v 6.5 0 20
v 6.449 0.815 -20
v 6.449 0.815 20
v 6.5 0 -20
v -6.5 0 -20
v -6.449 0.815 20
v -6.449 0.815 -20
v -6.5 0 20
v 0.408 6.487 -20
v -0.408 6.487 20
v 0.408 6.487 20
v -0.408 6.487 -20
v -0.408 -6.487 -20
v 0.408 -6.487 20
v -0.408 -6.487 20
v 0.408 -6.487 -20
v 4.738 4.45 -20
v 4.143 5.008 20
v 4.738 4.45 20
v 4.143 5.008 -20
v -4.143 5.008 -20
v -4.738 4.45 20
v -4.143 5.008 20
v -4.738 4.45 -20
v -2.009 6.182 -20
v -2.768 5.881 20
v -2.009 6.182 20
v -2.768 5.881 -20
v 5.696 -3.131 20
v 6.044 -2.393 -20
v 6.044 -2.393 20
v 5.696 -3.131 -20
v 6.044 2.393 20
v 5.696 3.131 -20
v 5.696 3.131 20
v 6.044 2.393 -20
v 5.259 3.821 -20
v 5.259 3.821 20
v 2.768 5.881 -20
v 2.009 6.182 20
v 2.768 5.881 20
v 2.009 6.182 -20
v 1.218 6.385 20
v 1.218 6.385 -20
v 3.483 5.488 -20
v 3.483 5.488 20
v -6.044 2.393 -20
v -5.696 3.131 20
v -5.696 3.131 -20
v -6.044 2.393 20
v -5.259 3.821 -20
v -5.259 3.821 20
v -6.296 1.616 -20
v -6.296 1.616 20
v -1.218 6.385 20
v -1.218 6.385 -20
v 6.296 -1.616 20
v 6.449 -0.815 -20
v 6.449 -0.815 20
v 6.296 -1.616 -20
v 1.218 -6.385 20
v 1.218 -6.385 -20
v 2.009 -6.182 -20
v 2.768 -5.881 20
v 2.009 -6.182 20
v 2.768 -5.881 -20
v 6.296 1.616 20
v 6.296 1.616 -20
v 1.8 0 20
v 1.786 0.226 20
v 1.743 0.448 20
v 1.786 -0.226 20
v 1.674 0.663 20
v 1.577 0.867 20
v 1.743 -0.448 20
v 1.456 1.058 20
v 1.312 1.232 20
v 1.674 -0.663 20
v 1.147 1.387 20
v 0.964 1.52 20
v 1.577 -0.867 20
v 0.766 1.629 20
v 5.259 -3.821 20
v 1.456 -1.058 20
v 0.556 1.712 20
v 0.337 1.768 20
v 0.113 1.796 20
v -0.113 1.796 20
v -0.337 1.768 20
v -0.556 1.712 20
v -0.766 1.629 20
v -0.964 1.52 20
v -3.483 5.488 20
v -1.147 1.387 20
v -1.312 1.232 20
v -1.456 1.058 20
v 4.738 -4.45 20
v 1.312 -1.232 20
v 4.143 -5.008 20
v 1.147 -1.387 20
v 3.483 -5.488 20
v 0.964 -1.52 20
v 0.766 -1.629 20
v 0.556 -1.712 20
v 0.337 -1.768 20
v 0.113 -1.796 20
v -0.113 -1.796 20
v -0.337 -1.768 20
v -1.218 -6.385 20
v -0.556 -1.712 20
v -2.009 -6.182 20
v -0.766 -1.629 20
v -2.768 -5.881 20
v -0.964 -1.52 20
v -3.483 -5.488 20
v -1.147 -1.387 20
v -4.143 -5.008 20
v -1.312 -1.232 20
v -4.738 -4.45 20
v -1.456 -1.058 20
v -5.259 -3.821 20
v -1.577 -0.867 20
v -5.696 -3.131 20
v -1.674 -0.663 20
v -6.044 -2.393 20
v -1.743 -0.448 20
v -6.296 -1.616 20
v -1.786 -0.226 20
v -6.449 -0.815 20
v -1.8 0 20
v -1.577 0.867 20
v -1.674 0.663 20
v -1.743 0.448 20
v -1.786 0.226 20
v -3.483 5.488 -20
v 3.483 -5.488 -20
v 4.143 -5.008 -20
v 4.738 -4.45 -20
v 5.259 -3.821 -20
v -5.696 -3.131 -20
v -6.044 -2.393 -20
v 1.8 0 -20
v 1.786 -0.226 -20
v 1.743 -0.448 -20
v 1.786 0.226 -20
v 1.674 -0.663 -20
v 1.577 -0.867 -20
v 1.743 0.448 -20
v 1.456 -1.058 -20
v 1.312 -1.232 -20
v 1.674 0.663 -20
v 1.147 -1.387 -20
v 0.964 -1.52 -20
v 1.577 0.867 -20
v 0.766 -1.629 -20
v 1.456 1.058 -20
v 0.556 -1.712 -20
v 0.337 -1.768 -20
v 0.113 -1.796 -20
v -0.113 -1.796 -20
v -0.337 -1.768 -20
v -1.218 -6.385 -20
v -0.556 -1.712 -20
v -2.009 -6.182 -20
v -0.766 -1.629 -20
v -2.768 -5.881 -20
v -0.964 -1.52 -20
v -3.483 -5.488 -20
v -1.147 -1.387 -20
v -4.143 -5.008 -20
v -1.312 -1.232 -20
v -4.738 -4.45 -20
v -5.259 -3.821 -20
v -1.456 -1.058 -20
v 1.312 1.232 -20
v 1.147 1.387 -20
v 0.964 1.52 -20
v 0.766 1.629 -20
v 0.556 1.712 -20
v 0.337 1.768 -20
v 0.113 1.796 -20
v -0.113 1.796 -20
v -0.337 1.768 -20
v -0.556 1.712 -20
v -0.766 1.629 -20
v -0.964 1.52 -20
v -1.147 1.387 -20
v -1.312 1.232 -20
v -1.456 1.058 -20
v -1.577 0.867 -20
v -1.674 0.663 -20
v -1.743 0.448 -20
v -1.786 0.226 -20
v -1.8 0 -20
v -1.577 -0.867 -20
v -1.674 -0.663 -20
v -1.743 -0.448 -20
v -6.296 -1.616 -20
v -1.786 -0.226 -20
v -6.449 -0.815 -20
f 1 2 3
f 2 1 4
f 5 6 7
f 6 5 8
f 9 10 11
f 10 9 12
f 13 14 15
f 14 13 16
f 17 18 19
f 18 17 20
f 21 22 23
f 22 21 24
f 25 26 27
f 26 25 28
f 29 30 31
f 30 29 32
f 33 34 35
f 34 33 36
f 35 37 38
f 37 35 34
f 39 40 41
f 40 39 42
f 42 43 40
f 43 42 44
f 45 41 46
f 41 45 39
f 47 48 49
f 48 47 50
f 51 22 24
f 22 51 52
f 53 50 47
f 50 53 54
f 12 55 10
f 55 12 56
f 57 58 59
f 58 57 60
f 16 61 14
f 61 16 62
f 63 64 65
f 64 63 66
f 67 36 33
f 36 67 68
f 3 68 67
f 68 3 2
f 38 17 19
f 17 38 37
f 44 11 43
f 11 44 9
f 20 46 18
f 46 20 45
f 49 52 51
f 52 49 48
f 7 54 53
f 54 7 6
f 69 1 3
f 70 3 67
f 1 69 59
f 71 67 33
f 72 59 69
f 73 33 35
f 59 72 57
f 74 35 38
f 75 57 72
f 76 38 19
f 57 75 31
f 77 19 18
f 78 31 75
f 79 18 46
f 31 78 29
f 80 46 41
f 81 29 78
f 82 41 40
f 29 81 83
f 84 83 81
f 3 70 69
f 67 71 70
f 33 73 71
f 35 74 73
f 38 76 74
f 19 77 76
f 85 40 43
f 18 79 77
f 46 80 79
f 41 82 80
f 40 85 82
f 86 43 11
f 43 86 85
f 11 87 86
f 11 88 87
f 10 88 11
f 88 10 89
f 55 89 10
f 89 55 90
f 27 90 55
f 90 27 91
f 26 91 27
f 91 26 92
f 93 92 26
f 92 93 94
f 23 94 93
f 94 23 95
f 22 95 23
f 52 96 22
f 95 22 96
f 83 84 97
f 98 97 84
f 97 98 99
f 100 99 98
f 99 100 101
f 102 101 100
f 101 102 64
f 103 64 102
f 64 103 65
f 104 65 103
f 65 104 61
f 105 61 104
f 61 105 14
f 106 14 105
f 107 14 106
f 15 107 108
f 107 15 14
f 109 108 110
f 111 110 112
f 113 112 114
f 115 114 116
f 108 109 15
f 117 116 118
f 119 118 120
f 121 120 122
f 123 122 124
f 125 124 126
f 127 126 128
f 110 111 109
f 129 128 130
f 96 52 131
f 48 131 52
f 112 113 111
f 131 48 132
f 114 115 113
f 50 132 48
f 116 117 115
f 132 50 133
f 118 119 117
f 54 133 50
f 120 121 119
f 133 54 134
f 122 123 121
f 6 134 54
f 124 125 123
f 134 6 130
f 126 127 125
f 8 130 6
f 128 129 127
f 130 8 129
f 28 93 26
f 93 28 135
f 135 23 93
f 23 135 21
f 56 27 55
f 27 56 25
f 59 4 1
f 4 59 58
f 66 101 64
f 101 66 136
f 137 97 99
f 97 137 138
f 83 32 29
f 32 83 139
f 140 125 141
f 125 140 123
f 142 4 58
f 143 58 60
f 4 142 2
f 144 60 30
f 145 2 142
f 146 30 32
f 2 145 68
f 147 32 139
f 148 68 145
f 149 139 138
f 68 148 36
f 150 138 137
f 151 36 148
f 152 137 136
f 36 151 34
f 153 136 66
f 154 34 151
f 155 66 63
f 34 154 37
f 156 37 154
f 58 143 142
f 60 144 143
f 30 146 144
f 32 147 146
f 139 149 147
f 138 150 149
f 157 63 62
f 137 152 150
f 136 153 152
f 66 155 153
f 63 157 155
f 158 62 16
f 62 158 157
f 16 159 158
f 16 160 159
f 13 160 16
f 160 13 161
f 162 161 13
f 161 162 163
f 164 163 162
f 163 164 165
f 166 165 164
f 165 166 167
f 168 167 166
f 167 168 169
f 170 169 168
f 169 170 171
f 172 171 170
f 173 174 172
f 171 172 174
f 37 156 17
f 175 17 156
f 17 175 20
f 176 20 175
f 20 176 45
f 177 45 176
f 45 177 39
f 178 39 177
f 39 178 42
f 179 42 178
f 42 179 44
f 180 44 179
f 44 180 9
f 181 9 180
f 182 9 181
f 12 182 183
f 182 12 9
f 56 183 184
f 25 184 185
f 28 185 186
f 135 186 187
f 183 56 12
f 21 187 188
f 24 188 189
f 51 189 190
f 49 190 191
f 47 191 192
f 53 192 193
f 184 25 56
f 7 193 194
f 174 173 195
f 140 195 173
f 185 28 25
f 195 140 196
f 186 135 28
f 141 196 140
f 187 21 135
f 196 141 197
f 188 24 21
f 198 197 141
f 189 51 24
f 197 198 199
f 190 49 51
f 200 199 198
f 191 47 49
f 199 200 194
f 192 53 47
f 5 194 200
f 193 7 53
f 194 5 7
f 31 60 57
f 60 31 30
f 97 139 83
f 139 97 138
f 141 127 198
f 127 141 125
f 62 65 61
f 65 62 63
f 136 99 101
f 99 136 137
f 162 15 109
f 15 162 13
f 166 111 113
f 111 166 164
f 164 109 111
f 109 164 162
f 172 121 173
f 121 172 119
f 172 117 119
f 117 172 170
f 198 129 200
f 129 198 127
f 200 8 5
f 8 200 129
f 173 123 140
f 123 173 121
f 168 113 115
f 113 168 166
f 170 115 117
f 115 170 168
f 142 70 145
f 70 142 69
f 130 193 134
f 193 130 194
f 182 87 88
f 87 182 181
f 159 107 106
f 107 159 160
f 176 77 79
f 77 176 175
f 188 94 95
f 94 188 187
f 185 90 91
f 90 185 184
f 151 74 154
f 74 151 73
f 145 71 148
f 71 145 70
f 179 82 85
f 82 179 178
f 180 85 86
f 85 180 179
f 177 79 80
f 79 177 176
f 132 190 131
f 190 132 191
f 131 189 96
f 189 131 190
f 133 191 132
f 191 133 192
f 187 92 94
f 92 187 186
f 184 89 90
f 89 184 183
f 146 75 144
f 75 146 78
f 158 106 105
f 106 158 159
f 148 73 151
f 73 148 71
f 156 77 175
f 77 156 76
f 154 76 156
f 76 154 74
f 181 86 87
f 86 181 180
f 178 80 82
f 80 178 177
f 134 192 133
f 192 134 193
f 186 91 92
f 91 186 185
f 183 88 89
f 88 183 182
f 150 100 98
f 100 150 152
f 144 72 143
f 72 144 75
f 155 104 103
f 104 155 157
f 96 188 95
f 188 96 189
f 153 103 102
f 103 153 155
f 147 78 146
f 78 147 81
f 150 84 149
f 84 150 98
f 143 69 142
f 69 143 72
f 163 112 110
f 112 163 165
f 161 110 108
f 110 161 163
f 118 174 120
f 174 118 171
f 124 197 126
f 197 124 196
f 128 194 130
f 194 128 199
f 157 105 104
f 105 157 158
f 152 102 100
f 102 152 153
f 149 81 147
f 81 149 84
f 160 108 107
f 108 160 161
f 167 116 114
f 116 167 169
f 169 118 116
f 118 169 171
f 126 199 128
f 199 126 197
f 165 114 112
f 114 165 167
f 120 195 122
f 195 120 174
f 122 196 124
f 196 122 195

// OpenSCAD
$fn = 50;


difference() {
	union() {
		translate(v = [0, 0, -20.0000000000]) {
			cylinder(h = 40, r = 6.5000000000);
		}
	}
	union() {
		translate(v = [0, 0, -100.0000000000]) {
			cylinder(h = 200, r = 1.8000000000);
		}
	}
}
